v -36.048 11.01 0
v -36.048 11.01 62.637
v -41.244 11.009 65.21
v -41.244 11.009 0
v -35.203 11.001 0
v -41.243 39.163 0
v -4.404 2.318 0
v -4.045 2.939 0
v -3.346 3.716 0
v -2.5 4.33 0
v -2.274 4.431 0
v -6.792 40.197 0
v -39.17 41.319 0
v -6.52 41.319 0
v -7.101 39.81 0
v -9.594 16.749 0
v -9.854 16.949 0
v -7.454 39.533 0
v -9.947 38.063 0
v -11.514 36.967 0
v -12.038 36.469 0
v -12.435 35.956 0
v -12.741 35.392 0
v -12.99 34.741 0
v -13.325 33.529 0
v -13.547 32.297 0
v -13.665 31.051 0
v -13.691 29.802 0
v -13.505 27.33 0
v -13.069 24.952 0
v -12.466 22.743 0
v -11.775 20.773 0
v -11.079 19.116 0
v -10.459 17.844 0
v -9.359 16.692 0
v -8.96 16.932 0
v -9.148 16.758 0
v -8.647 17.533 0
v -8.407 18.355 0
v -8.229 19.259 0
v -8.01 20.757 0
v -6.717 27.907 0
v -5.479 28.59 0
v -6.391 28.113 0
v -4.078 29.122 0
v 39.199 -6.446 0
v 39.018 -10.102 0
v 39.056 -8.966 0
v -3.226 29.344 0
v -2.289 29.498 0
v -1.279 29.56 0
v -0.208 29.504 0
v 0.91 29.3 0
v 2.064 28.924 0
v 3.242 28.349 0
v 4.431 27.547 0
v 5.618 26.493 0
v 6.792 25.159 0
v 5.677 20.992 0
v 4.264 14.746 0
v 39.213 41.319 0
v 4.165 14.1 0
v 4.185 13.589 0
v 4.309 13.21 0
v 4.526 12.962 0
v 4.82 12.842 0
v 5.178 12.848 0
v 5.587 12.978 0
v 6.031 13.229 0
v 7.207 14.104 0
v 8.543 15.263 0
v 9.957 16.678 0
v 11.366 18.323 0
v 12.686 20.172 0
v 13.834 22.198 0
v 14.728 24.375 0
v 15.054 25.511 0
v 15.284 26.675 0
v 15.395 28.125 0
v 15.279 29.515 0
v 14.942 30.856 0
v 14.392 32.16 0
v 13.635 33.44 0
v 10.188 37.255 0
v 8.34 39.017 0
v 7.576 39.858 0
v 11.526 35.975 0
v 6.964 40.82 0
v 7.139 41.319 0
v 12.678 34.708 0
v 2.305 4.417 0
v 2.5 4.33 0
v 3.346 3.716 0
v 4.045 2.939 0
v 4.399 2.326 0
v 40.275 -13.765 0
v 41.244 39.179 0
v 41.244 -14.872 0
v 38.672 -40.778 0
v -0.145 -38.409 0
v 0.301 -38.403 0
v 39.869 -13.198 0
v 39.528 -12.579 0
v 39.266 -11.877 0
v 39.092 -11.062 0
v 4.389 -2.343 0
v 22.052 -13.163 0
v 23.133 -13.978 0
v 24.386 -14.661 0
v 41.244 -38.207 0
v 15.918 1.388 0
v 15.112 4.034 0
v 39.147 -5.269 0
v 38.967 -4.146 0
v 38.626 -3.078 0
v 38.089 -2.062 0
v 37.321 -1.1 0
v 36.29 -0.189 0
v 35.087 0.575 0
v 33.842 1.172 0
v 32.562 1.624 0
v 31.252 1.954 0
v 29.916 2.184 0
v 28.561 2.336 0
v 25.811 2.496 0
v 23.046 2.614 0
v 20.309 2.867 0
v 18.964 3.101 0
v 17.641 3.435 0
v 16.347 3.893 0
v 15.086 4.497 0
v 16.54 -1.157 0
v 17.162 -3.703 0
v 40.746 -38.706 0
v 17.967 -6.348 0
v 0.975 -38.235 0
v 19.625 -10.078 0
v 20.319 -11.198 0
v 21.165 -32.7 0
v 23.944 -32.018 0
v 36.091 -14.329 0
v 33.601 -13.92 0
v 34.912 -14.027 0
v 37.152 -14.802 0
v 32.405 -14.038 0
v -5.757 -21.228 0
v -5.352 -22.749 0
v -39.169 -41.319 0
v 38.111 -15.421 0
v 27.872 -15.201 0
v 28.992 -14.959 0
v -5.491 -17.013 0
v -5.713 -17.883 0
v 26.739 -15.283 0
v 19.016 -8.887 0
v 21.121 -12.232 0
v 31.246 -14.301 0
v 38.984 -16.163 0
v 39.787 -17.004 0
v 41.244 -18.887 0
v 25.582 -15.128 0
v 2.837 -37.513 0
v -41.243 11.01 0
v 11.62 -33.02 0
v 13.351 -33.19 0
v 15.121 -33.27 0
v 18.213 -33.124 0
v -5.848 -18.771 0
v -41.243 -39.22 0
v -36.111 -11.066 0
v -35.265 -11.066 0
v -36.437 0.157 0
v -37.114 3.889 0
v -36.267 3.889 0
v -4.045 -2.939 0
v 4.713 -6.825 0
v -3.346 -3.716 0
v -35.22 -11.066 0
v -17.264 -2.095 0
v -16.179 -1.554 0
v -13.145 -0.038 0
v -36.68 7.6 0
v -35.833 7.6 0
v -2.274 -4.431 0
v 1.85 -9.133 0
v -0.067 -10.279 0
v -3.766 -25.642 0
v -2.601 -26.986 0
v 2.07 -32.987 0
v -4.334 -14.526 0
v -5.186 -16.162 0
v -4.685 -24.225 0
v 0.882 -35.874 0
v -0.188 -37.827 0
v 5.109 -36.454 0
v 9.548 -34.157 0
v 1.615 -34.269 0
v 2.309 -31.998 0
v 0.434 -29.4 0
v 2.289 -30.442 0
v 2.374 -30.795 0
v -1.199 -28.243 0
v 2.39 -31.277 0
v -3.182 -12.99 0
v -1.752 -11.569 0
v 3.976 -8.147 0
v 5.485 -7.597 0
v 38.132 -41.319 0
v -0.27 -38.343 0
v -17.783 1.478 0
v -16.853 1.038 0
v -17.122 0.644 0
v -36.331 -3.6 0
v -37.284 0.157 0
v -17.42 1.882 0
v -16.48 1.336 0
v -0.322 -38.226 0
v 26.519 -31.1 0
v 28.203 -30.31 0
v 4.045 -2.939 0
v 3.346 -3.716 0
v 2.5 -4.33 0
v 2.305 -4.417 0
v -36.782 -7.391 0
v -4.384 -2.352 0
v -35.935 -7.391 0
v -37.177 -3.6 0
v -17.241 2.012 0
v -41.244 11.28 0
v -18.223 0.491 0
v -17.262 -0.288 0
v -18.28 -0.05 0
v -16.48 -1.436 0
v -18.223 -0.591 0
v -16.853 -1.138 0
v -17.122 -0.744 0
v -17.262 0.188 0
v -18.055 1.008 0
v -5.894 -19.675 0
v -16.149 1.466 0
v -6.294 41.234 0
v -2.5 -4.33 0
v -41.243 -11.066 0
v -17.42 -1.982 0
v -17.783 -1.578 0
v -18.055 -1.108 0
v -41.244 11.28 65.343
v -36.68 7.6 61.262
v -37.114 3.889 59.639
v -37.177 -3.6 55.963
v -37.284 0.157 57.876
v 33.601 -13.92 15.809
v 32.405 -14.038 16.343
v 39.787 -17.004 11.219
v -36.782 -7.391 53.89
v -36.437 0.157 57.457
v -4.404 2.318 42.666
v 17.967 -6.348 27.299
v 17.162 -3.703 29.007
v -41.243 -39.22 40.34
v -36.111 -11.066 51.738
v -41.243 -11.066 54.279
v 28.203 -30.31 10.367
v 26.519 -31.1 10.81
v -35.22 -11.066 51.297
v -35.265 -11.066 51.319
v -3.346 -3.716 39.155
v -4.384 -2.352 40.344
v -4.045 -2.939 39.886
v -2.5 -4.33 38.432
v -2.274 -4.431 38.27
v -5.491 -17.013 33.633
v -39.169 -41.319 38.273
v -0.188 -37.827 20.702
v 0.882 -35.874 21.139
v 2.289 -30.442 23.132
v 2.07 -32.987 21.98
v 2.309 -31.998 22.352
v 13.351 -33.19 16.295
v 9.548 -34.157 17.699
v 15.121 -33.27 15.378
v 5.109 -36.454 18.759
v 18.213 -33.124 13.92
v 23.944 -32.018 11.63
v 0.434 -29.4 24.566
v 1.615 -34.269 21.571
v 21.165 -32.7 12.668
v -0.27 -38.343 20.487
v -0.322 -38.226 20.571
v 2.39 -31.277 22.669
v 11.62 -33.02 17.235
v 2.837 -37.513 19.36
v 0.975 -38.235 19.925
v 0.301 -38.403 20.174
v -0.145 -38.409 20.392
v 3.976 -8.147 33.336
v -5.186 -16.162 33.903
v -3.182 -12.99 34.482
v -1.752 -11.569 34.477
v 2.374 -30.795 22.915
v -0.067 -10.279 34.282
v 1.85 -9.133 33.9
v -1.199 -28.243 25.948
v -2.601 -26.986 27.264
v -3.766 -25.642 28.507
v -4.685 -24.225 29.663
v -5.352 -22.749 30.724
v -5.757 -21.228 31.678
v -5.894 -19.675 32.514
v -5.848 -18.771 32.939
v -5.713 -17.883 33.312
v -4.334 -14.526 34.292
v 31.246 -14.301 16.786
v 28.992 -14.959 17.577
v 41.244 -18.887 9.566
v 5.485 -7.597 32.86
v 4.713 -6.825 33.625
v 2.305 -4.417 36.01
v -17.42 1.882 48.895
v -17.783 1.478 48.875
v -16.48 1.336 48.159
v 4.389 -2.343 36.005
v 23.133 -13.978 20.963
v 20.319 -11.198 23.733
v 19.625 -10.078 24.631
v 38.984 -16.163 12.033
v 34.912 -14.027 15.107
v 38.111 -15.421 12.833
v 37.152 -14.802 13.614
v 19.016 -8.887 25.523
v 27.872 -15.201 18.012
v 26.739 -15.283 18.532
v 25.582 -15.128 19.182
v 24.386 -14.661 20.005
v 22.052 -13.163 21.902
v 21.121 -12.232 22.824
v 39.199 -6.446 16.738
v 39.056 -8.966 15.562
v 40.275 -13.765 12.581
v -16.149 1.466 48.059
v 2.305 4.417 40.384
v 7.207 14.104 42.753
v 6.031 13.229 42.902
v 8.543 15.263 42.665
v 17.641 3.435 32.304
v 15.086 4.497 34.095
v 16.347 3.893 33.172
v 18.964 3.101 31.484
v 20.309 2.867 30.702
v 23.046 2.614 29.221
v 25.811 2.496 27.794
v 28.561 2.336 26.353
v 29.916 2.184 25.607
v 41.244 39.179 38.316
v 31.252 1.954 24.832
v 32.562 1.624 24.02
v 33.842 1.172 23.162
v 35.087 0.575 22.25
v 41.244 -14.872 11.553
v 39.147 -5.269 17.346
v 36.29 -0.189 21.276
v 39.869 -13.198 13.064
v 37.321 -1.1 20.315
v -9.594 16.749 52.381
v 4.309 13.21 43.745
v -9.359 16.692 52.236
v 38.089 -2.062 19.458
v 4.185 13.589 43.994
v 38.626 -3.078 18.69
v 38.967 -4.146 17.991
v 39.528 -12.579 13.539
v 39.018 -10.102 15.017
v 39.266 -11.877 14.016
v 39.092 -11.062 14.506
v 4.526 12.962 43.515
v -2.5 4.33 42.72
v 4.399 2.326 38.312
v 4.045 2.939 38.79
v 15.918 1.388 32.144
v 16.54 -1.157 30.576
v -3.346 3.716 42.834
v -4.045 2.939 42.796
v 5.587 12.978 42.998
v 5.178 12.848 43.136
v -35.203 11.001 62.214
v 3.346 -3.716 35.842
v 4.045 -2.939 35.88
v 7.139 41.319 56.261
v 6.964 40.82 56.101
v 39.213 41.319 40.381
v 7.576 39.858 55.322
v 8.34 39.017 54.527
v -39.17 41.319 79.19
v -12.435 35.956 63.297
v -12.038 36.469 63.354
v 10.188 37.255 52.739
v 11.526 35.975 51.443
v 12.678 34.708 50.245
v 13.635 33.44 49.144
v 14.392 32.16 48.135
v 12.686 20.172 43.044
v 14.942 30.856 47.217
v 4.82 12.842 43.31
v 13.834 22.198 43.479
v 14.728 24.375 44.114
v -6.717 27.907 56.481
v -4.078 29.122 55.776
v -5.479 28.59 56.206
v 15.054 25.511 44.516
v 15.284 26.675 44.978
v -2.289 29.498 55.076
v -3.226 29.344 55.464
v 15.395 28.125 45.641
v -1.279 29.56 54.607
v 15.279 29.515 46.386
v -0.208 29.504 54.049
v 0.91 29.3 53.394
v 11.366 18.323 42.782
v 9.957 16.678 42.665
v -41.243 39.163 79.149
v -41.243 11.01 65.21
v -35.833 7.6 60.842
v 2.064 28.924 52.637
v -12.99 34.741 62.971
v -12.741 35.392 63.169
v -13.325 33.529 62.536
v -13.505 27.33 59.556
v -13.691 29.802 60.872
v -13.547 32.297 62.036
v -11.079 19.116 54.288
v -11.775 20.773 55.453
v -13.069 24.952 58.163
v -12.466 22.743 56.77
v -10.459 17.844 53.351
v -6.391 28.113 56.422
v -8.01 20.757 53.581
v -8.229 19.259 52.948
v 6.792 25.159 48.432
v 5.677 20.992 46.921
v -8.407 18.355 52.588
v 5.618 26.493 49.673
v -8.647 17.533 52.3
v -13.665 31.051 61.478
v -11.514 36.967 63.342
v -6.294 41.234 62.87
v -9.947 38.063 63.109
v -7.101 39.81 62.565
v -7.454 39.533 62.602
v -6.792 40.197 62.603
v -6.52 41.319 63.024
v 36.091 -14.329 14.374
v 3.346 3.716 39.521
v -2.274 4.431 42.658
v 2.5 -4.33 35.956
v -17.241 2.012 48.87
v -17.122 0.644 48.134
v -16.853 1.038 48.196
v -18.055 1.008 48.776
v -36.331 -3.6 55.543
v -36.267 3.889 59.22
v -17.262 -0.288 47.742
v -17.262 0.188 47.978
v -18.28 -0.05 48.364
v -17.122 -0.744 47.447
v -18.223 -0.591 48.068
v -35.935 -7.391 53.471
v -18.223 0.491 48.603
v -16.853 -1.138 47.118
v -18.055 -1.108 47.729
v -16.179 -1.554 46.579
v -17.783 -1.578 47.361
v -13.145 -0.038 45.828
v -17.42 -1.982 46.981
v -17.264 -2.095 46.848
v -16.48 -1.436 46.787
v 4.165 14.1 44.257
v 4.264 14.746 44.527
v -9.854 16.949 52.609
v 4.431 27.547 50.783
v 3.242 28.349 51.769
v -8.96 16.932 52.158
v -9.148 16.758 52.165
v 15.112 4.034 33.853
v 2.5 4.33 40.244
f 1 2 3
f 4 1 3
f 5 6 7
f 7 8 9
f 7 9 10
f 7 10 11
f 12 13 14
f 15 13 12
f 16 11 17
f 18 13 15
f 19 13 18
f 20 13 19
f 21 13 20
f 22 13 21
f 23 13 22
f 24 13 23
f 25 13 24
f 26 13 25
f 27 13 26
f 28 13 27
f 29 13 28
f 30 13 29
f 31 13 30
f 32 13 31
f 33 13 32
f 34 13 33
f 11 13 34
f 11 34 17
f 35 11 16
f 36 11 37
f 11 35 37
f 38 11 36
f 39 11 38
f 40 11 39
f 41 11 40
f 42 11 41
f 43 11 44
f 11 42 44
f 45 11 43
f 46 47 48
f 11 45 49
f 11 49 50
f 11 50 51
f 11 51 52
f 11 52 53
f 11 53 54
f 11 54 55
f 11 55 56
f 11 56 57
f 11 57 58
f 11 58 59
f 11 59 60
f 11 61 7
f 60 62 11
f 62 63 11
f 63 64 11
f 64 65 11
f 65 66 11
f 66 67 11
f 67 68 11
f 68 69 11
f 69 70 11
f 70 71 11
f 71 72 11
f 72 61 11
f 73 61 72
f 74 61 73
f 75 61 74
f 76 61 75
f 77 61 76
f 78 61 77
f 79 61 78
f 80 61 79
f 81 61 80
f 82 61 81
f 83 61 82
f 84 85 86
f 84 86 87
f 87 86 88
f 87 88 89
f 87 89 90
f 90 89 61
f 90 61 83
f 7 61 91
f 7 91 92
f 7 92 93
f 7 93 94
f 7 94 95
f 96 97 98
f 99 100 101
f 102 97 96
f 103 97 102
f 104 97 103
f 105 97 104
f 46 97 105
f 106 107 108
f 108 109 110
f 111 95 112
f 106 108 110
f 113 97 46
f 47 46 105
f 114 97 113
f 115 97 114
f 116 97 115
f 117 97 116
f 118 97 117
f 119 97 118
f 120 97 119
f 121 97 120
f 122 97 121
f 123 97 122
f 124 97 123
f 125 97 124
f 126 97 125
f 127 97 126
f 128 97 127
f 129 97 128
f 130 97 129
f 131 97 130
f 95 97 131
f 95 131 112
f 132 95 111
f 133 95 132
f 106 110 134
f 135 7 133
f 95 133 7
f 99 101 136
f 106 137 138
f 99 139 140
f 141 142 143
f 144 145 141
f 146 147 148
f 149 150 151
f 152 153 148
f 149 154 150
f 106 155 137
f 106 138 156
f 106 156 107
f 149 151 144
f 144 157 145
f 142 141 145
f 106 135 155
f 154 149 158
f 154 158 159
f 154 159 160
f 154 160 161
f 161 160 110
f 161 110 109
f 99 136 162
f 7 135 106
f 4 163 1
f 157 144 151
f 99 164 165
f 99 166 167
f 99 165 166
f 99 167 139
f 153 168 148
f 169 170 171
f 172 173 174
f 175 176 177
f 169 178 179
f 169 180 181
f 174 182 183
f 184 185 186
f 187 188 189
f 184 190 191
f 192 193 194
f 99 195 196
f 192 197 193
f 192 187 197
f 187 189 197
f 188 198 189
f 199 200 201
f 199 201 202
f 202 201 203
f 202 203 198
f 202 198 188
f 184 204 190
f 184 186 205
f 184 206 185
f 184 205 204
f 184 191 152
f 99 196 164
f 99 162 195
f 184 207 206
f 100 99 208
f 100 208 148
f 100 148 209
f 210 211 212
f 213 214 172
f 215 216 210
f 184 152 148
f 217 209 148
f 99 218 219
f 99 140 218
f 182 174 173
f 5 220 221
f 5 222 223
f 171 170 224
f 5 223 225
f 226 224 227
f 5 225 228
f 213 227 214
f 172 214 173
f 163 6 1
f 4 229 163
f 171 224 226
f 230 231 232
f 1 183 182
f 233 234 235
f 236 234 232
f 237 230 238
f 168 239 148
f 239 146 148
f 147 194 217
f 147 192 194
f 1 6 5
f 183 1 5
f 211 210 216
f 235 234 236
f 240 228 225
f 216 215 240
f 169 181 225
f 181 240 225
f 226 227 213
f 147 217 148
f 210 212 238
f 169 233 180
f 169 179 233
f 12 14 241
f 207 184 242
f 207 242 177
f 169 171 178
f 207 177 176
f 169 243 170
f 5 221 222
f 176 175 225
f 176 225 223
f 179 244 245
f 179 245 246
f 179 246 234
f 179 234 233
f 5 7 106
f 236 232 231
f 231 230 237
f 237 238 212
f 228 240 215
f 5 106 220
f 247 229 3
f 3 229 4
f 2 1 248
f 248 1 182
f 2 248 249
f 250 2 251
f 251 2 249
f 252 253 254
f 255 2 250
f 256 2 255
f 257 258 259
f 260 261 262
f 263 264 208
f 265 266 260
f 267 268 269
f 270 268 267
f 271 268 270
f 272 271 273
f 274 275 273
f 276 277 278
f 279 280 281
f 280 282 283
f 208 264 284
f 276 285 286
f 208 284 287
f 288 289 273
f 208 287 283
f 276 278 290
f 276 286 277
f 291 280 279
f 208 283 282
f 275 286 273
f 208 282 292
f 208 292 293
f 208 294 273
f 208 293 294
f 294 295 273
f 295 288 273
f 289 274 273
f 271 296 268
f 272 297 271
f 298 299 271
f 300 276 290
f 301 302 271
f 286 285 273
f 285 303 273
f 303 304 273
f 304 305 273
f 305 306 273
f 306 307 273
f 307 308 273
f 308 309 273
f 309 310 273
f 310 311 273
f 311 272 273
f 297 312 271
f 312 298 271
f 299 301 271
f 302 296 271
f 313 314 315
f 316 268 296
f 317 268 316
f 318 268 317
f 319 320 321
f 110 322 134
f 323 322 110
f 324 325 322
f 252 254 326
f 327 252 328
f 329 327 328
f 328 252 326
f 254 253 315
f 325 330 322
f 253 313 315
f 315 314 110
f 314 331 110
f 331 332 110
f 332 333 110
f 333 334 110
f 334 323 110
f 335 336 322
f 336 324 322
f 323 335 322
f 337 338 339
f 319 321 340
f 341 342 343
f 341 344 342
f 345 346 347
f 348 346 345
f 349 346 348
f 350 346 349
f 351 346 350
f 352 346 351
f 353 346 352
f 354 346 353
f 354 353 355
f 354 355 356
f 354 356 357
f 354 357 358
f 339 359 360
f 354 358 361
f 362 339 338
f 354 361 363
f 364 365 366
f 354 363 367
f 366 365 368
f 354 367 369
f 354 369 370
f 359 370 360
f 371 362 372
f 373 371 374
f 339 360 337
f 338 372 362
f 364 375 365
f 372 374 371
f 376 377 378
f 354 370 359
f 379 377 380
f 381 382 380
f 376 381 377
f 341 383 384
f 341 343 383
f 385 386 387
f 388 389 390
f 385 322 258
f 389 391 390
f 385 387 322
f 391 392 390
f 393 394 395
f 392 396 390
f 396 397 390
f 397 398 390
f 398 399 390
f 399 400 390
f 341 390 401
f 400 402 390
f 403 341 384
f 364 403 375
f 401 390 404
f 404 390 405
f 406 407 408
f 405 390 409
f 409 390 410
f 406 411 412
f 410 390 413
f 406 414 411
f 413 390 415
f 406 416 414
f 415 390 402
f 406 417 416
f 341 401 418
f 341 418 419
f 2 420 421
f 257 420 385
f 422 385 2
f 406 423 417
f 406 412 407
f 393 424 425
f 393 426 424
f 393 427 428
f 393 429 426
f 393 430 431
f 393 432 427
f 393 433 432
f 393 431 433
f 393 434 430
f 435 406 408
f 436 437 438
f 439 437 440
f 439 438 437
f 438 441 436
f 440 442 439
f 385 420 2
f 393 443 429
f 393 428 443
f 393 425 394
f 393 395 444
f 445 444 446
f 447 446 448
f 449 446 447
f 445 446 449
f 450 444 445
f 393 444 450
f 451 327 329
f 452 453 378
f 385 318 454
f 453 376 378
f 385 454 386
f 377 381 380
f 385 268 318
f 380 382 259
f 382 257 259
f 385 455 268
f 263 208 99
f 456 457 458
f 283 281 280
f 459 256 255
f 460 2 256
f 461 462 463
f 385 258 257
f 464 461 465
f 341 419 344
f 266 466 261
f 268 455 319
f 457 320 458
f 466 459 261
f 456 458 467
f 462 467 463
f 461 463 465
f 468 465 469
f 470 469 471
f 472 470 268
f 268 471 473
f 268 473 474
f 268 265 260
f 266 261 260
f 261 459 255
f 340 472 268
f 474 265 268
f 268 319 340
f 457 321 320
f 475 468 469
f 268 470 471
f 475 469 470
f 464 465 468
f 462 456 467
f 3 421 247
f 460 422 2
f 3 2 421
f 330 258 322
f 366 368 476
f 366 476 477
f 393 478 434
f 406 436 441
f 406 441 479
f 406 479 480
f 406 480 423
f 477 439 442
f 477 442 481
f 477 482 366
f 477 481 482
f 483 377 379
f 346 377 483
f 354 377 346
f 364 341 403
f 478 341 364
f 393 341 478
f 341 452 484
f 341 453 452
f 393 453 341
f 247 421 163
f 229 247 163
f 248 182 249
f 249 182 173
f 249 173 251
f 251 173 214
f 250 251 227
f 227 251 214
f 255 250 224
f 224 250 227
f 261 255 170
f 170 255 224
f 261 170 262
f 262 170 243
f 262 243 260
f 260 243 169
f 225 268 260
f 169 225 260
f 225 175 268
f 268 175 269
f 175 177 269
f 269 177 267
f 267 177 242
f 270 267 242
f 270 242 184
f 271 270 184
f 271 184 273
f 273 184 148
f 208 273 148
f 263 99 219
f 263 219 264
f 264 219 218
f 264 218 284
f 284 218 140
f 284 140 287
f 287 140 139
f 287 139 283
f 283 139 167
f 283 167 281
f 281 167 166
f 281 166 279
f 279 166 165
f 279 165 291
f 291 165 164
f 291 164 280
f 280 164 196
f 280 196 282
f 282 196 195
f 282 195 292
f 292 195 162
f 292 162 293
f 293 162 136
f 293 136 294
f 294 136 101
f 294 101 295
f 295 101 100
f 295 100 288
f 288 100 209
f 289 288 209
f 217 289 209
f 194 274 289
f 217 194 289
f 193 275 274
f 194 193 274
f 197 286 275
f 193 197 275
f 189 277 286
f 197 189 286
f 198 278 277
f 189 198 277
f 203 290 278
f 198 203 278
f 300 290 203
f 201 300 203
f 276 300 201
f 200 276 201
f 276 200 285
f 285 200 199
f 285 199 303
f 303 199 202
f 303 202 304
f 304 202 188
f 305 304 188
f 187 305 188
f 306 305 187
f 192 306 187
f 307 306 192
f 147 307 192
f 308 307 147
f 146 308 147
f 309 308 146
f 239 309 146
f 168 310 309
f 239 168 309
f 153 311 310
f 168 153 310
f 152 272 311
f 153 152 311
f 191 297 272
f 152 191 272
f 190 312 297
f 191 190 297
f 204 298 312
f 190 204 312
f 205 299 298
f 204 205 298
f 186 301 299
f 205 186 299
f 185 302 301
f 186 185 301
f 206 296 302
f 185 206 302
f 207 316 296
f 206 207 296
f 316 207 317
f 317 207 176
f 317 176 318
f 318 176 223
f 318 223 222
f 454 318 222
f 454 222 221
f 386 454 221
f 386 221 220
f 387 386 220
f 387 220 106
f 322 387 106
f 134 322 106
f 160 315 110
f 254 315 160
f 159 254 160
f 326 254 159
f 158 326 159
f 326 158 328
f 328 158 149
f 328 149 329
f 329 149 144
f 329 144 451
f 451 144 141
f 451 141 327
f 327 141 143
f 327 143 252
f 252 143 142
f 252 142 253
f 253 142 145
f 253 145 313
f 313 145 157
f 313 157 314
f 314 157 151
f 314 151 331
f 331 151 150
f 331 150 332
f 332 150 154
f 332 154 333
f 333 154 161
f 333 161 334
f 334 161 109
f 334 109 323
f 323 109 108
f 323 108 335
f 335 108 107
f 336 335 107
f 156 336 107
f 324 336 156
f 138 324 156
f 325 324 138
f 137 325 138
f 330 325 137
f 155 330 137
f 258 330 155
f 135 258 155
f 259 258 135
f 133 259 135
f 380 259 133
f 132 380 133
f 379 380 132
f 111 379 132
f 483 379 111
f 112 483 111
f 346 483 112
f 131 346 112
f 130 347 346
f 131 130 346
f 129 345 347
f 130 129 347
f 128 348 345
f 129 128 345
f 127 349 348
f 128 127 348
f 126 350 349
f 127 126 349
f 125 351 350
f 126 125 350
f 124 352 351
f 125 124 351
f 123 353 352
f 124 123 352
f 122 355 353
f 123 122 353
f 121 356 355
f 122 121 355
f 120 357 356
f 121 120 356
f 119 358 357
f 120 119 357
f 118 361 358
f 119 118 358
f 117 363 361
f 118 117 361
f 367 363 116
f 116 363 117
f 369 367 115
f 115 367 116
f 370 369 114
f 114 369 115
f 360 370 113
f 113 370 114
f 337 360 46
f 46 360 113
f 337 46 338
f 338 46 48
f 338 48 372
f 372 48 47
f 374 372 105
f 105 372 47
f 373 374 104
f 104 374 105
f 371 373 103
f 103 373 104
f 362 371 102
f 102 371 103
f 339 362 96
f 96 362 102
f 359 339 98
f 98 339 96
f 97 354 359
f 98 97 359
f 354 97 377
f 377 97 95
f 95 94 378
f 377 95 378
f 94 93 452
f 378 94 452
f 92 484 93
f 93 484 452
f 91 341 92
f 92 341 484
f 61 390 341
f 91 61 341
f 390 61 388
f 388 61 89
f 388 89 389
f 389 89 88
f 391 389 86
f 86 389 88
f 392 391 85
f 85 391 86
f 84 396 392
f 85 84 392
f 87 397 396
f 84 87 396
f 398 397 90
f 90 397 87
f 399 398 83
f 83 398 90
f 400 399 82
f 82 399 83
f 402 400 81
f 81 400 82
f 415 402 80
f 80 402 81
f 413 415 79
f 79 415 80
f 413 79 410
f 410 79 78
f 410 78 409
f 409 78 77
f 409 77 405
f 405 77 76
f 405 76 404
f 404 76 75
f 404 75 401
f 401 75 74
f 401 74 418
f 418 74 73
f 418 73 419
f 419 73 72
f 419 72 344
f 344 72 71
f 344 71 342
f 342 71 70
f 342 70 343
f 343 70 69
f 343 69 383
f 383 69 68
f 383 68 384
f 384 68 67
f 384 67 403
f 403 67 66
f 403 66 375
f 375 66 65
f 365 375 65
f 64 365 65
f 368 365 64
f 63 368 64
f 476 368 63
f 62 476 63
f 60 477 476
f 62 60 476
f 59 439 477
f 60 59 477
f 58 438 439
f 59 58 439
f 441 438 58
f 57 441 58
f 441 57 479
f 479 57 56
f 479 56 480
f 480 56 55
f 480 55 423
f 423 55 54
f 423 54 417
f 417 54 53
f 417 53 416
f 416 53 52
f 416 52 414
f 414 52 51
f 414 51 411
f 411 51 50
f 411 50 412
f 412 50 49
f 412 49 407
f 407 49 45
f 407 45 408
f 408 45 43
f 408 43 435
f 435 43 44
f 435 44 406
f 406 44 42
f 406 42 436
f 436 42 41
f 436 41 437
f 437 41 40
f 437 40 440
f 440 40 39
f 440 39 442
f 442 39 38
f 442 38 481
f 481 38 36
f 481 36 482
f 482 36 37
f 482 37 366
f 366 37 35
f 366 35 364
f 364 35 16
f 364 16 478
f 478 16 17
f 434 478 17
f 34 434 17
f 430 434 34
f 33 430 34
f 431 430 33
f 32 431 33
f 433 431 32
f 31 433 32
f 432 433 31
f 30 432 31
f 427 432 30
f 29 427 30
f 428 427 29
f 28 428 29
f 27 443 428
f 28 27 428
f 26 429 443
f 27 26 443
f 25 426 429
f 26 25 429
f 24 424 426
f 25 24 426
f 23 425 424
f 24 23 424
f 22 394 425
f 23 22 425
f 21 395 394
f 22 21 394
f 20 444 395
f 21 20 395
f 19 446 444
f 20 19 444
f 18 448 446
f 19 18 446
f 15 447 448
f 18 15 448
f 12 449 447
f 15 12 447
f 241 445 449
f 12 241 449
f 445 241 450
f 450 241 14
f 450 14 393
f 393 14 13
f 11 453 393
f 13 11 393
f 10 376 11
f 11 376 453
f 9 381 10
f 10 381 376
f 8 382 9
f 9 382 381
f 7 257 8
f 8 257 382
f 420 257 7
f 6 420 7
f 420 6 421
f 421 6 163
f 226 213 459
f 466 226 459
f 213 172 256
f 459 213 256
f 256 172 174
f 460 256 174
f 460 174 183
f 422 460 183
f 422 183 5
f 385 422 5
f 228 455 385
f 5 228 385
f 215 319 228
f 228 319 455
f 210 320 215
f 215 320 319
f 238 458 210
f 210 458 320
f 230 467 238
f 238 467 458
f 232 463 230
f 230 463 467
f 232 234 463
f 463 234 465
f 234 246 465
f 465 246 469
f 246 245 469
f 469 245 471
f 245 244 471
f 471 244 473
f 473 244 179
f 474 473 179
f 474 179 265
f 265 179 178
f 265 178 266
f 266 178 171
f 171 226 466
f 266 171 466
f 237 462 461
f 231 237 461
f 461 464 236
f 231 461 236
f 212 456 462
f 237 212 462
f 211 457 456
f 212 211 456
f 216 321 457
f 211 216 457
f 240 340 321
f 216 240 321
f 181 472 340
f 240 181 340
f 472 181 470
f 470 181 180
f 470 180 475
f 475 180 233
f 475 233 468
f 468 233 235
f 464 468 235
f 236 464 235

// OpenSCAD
// Module names are of the form poly_<inkscape-path-id>().  As a result,
// you can associate a polygon in this OpenSCAD program with the corresponding
// SVG element in the Inkscape document by looking for the XML element with
// the attribute id="inkscape-path-id".

// fudge value is used to ensure that subtracted solids are a tad taller
// in the z dimension than the polygon being subtracted from.  This helps
// keep the resulting .stl file manifold.
fudge = 0.1;

module poly_sustainability(h)
{
  scale([25.4/90, -25.4/90, 1]) union()
  {
    linear_extrude(height=h)
      polygon([[119.059500,49.321938],[114.820081,49.739379],[110.714930,50.672563],[102.729188,53.003813],[98.759476,53.860707],[94.745789,54.151000],[90.643567,53.604105],[86.408250,51.949438],[81.966543,49.529252],[78.135691,46.642016],[74.838658,43.340990],[71.998406,39.679438],[69.537901,35.710619],[67.380105,31.487797],[63.664500,22.493188],[60.810105,13.119672],[58.605281,4.101000],[56.400691,-4.918141],[53.547000,-14.293062],[53.454500,-15.934312],[57.922292,-13.795368],[62.508553,-12.172638],[67.194408,-10.986966],[71.960984,-10.159195],[81.660799,-9.260733],[91.457000,-8.844000],[101.198592,-8.275743],[106.001723,-7.736902],[110.734578,-6.922711],[115.378283,-5.754013],[119.913963,-4.151651],[124.322743,-2.036470],[128.585750,0.670688],[132.240567,3.896293],[134.959598,7.307172],[136.863619,10.905199],[138.073406,14.692250],[138.709737,18.670199],[138.893387,22.840922],[138.385750,31.768188],[138.252571,35.795016],[138.513758,39.196957],[139.129612,42.084943],[140.060437,44.569906],[141.266536,46.762780],[142.708211,48.774496],[146.139500,52.698188],[146.139500,-138.824312],[7.299500,0.045688],[146.139500,138.911938],[146.139500,66.921938],[140.978191,60.251137],[138.133609,57.271657],[135.039344,54.642406],[131.640098,52.448097],[127.880574,50.773441],[123.705474,49.703151]]);
  }
}

module poly_make(h)
{
  scale([25.4/90, -25.4/90, 1]) union()
  {
    linear_extrude(height=h)
      polygon([[25.294875,-146.406813],[138.944875,-146.406813],[0.078625,-7.564312],[-138.790125,-146.406813],[-23.101375,-146.406813],[-22.301375,-146.104312],[-24.065906,-142.430094],[-25.161512,-141.058512],[-26.412625,-140.076813],[-35.245926,-134.869059],[-40.798094,-130.985406],[-42.653897,-129.220306],[-44.061590,-127.402457],[-45.145230,-125.403934],[-46.028875,-123.096813],[-47.214939,-118.805053],[-48.000101,-114.436529],[-48.420362,-110.023401],[-48.511727,-105.597828],[-47.851771,-96.837994],[-46.308250,-88.414313],[-44.169183,-80.584068],[-41.722586,-73.604547],[-39.256478,-67.733033],[-37.058875,-63.226813],[-34.916651,-60.055699],[-33.993017,-59.347848],[-33.160691,-59.143141],[-32.414419,-59.380084],[-31.748941,-59.997184],[-30.639344,-62.125875],[-29.789844,-65.037262],[-29.158387,-68.239391],[-28.381375,-73.548063],[-23.801375,-98.883062],[-22.646038,-99.613863],[-19.412820,-101.301734],[-14.450911,-103.189879],[-11.430819,-103.972555],[-8.109500,-104.521500],[-4.530603,-104.742115],[-0.737776,-104.539801],[3.225331,-103.819957],[7.315070,-102.487984],[11.487793,-100.449283],[15.699851,-97.609254],[19.907594,-93.873297],[24.067375,-89.146813],[20.115500,-74.382906],[15.109875,-52.249313],[14.757270,-49.960501],[14.826613,-48.149449],[15.269111,-46.808290],[16.035969,-45.929156],[17.078393,-45.504183],[18.347590,-45.525504],[19.794765,-45.985252],[21.371125,-46.875563],[25.535231,-49.975470],[30.270070,-54.079586],[35.280827,-59.093722],[40.272687,-64.923688],[44.950837,-71.475294],[49.020461,-78.654352],[52.186745,-86.366671],[53.339005,-90.393370],[54.154875,-94.518062],[54.548017,-99.656607],[54.137121,-104.580172],[52.945610,-109.331588],[50.996906,-113.953688],[48.314433,-118.489303],[44.921613,-122.981266],[40.841870,-127.472408],[36.098625,-132.005563],[29.552375,-138.249469],[26.843039,-141.229684],[24.674875,-144.636812],[25.294875,-146.406813]]);
  }
}

module poly_creatitvity(h)
{
  union() {
    scale([25.4/90, -25.4/90, 1])
    {
      linear_extrude(height=h)
        polygon([[-146.139500,-39.966937],[-146.139500,-39.009437],[-124.800750,-39.011937],[-46.575750,0.133063],[-124.795750,39.211813],[-143.664500,39.211813],[-146.138250,39.211813],[-146.138250,138.968063],[-7.297000,0.096813],[-146.138250,-138.768187],[-146.138250,-39.011937]]);
    }

    difference() {
      translate([-15.68, -0.05, 0])
      cylinder(h=h, r=2.6, $fs=0.5);

      translate([-15.68, -0.05, -h/2])
      scale([1,1,2])
      cylinder(h=h, r=1.6, $fs=0.5);

      translate([-13.68, -0.05, -h/2])
      scale([1,1,2])
      cylinder(h=h, r=1.6, $fs=0.5);
    }
    poly_border(h);
  }
}

module poly_border(h)
{
  translate([0.3, 0, 0])
  scale([25.4/90, -25.4/90, 1])
  {
    difference() {
      scale([1, 1.2, 1])
      bow(h);

      translate([ 3, 0, -h/2])
      scale([1,1.2,2])
      bow(h);
    }
  }
}

module bow(h) {
  linear_extrude(height=h)
    polygon([[-125.332625,-44.244312],[-128.603252,-33.355375],[-131.030145,-22.440934],[-132.567847,-11.483456],[-133.170906,-0.465406],[-132.793868,10.630749],[-131.391277,21.822543],[-128.917681,33.127511],[-125.327625,44.563188]]);
}

module poly_tip(h)
{
  scale([25.4/90, -25.4/90, 1]) union()
  {
    linear_extrude(height=h)
      polygon([[-46.478250,0.159938],[-46.663282,1.994305],[-47.193973,3.703238],[-48.033716,5.250013],[-49.145906,6.597906],[-50.493936,7.710194],[-52.041199,8.550152],[-53.751089,9.081058],[-55.587000,9.266188],[-57.422444,9.081058],[-59.131883,8.550152],[-60.678724,7.710194],[-62.026375,6.597906],[-63.138245,5.250013],[-63.977742,3.703238],[-64.508274,1.994305],[-64.693250,0.159938],[-64.508274,-1.676081],[-63.977742,-3.386254],[-63.138245,-4.933917],[-62.026375,-6.282406],[-60.678724,-7.395055],[-59.131883,-8.235199],[-57.422444,-8.766173],[-55.587000,-8.951313],[-53.751089,-8.766173],[-52.041199,-8.235199],[-50.493936,-7.395055],[-49.145906,-6.282406],[-48.033716,-4.933917],[-47.193973,-3.386254],[-46.663282,-1.676081],[-46.478250,0.159938]]);
  }
}

module poly_social(h)
{
  scale([25.4/90, -25.4/90, 1]) union()
  {
    linear_extrude(height=h)
      polygon([[99.931125,107.398063],[93.964875,110.195563],[84.841145,113.449215],[74.992844,115.865094],[64.533996,117.369020],[53.578625,117.886813],[47.306281,117.601188],[41.173625,117.000563],[33.830168,121.030191],[18.104406,129.165719],[10.053447,132.920057],[3.453254,135.477105],[1.066606,136.075004],[-0.514058,136.095609],[-0.955969,135.860471],[-1.140973,135.446264],[-0.666375,134.034313],[3.124208,127.112831],[5.720871,121.427457],[7.335825,116.881644],[8.181281,113.378844],[8.469453,110.822508],[8.412551,109.116090],[8.112375,107.866813],[1.538410,104.172823],[-4.247234,100.074039],[-9.217371,95.619298],[-13.344812,90.857438],[-16.602371,85.837296],[-18.962859,80.607711],[-20.399090,75.217521],[-20.883875,69.715563],[-20.722091,66.512633],[-20.243042,63.365719],[-19.456886,60.281383],[-18.373777,57.266188],[-15.357334,51.469469],[-11.274969,46.028063],[-6.207935,40.994469],[-0.237488,36.421188],[6.555117,32.360719],[14.088625,28.865563],[19.436125,26.919313],[16.698625,24.183063],[0.078625,7.564313],[-138.788875,146.406813],[138.944875,146.406813],[99.931125,107.398063]]);
  }
}

module logo(h)
{
  union() {
    poly_sustainability(height);
    poly_make(height);
    poly_creatitvity(height);
    poly_social(height);
    cylinder(h=height, r=5, $fs=1);
  }
}

height = 80;

difference() {
  logo(height);

  translate([0, 0, 90])
  rotate([35, 0, 45])
  cube([200, 200, 83], center=true);
}
